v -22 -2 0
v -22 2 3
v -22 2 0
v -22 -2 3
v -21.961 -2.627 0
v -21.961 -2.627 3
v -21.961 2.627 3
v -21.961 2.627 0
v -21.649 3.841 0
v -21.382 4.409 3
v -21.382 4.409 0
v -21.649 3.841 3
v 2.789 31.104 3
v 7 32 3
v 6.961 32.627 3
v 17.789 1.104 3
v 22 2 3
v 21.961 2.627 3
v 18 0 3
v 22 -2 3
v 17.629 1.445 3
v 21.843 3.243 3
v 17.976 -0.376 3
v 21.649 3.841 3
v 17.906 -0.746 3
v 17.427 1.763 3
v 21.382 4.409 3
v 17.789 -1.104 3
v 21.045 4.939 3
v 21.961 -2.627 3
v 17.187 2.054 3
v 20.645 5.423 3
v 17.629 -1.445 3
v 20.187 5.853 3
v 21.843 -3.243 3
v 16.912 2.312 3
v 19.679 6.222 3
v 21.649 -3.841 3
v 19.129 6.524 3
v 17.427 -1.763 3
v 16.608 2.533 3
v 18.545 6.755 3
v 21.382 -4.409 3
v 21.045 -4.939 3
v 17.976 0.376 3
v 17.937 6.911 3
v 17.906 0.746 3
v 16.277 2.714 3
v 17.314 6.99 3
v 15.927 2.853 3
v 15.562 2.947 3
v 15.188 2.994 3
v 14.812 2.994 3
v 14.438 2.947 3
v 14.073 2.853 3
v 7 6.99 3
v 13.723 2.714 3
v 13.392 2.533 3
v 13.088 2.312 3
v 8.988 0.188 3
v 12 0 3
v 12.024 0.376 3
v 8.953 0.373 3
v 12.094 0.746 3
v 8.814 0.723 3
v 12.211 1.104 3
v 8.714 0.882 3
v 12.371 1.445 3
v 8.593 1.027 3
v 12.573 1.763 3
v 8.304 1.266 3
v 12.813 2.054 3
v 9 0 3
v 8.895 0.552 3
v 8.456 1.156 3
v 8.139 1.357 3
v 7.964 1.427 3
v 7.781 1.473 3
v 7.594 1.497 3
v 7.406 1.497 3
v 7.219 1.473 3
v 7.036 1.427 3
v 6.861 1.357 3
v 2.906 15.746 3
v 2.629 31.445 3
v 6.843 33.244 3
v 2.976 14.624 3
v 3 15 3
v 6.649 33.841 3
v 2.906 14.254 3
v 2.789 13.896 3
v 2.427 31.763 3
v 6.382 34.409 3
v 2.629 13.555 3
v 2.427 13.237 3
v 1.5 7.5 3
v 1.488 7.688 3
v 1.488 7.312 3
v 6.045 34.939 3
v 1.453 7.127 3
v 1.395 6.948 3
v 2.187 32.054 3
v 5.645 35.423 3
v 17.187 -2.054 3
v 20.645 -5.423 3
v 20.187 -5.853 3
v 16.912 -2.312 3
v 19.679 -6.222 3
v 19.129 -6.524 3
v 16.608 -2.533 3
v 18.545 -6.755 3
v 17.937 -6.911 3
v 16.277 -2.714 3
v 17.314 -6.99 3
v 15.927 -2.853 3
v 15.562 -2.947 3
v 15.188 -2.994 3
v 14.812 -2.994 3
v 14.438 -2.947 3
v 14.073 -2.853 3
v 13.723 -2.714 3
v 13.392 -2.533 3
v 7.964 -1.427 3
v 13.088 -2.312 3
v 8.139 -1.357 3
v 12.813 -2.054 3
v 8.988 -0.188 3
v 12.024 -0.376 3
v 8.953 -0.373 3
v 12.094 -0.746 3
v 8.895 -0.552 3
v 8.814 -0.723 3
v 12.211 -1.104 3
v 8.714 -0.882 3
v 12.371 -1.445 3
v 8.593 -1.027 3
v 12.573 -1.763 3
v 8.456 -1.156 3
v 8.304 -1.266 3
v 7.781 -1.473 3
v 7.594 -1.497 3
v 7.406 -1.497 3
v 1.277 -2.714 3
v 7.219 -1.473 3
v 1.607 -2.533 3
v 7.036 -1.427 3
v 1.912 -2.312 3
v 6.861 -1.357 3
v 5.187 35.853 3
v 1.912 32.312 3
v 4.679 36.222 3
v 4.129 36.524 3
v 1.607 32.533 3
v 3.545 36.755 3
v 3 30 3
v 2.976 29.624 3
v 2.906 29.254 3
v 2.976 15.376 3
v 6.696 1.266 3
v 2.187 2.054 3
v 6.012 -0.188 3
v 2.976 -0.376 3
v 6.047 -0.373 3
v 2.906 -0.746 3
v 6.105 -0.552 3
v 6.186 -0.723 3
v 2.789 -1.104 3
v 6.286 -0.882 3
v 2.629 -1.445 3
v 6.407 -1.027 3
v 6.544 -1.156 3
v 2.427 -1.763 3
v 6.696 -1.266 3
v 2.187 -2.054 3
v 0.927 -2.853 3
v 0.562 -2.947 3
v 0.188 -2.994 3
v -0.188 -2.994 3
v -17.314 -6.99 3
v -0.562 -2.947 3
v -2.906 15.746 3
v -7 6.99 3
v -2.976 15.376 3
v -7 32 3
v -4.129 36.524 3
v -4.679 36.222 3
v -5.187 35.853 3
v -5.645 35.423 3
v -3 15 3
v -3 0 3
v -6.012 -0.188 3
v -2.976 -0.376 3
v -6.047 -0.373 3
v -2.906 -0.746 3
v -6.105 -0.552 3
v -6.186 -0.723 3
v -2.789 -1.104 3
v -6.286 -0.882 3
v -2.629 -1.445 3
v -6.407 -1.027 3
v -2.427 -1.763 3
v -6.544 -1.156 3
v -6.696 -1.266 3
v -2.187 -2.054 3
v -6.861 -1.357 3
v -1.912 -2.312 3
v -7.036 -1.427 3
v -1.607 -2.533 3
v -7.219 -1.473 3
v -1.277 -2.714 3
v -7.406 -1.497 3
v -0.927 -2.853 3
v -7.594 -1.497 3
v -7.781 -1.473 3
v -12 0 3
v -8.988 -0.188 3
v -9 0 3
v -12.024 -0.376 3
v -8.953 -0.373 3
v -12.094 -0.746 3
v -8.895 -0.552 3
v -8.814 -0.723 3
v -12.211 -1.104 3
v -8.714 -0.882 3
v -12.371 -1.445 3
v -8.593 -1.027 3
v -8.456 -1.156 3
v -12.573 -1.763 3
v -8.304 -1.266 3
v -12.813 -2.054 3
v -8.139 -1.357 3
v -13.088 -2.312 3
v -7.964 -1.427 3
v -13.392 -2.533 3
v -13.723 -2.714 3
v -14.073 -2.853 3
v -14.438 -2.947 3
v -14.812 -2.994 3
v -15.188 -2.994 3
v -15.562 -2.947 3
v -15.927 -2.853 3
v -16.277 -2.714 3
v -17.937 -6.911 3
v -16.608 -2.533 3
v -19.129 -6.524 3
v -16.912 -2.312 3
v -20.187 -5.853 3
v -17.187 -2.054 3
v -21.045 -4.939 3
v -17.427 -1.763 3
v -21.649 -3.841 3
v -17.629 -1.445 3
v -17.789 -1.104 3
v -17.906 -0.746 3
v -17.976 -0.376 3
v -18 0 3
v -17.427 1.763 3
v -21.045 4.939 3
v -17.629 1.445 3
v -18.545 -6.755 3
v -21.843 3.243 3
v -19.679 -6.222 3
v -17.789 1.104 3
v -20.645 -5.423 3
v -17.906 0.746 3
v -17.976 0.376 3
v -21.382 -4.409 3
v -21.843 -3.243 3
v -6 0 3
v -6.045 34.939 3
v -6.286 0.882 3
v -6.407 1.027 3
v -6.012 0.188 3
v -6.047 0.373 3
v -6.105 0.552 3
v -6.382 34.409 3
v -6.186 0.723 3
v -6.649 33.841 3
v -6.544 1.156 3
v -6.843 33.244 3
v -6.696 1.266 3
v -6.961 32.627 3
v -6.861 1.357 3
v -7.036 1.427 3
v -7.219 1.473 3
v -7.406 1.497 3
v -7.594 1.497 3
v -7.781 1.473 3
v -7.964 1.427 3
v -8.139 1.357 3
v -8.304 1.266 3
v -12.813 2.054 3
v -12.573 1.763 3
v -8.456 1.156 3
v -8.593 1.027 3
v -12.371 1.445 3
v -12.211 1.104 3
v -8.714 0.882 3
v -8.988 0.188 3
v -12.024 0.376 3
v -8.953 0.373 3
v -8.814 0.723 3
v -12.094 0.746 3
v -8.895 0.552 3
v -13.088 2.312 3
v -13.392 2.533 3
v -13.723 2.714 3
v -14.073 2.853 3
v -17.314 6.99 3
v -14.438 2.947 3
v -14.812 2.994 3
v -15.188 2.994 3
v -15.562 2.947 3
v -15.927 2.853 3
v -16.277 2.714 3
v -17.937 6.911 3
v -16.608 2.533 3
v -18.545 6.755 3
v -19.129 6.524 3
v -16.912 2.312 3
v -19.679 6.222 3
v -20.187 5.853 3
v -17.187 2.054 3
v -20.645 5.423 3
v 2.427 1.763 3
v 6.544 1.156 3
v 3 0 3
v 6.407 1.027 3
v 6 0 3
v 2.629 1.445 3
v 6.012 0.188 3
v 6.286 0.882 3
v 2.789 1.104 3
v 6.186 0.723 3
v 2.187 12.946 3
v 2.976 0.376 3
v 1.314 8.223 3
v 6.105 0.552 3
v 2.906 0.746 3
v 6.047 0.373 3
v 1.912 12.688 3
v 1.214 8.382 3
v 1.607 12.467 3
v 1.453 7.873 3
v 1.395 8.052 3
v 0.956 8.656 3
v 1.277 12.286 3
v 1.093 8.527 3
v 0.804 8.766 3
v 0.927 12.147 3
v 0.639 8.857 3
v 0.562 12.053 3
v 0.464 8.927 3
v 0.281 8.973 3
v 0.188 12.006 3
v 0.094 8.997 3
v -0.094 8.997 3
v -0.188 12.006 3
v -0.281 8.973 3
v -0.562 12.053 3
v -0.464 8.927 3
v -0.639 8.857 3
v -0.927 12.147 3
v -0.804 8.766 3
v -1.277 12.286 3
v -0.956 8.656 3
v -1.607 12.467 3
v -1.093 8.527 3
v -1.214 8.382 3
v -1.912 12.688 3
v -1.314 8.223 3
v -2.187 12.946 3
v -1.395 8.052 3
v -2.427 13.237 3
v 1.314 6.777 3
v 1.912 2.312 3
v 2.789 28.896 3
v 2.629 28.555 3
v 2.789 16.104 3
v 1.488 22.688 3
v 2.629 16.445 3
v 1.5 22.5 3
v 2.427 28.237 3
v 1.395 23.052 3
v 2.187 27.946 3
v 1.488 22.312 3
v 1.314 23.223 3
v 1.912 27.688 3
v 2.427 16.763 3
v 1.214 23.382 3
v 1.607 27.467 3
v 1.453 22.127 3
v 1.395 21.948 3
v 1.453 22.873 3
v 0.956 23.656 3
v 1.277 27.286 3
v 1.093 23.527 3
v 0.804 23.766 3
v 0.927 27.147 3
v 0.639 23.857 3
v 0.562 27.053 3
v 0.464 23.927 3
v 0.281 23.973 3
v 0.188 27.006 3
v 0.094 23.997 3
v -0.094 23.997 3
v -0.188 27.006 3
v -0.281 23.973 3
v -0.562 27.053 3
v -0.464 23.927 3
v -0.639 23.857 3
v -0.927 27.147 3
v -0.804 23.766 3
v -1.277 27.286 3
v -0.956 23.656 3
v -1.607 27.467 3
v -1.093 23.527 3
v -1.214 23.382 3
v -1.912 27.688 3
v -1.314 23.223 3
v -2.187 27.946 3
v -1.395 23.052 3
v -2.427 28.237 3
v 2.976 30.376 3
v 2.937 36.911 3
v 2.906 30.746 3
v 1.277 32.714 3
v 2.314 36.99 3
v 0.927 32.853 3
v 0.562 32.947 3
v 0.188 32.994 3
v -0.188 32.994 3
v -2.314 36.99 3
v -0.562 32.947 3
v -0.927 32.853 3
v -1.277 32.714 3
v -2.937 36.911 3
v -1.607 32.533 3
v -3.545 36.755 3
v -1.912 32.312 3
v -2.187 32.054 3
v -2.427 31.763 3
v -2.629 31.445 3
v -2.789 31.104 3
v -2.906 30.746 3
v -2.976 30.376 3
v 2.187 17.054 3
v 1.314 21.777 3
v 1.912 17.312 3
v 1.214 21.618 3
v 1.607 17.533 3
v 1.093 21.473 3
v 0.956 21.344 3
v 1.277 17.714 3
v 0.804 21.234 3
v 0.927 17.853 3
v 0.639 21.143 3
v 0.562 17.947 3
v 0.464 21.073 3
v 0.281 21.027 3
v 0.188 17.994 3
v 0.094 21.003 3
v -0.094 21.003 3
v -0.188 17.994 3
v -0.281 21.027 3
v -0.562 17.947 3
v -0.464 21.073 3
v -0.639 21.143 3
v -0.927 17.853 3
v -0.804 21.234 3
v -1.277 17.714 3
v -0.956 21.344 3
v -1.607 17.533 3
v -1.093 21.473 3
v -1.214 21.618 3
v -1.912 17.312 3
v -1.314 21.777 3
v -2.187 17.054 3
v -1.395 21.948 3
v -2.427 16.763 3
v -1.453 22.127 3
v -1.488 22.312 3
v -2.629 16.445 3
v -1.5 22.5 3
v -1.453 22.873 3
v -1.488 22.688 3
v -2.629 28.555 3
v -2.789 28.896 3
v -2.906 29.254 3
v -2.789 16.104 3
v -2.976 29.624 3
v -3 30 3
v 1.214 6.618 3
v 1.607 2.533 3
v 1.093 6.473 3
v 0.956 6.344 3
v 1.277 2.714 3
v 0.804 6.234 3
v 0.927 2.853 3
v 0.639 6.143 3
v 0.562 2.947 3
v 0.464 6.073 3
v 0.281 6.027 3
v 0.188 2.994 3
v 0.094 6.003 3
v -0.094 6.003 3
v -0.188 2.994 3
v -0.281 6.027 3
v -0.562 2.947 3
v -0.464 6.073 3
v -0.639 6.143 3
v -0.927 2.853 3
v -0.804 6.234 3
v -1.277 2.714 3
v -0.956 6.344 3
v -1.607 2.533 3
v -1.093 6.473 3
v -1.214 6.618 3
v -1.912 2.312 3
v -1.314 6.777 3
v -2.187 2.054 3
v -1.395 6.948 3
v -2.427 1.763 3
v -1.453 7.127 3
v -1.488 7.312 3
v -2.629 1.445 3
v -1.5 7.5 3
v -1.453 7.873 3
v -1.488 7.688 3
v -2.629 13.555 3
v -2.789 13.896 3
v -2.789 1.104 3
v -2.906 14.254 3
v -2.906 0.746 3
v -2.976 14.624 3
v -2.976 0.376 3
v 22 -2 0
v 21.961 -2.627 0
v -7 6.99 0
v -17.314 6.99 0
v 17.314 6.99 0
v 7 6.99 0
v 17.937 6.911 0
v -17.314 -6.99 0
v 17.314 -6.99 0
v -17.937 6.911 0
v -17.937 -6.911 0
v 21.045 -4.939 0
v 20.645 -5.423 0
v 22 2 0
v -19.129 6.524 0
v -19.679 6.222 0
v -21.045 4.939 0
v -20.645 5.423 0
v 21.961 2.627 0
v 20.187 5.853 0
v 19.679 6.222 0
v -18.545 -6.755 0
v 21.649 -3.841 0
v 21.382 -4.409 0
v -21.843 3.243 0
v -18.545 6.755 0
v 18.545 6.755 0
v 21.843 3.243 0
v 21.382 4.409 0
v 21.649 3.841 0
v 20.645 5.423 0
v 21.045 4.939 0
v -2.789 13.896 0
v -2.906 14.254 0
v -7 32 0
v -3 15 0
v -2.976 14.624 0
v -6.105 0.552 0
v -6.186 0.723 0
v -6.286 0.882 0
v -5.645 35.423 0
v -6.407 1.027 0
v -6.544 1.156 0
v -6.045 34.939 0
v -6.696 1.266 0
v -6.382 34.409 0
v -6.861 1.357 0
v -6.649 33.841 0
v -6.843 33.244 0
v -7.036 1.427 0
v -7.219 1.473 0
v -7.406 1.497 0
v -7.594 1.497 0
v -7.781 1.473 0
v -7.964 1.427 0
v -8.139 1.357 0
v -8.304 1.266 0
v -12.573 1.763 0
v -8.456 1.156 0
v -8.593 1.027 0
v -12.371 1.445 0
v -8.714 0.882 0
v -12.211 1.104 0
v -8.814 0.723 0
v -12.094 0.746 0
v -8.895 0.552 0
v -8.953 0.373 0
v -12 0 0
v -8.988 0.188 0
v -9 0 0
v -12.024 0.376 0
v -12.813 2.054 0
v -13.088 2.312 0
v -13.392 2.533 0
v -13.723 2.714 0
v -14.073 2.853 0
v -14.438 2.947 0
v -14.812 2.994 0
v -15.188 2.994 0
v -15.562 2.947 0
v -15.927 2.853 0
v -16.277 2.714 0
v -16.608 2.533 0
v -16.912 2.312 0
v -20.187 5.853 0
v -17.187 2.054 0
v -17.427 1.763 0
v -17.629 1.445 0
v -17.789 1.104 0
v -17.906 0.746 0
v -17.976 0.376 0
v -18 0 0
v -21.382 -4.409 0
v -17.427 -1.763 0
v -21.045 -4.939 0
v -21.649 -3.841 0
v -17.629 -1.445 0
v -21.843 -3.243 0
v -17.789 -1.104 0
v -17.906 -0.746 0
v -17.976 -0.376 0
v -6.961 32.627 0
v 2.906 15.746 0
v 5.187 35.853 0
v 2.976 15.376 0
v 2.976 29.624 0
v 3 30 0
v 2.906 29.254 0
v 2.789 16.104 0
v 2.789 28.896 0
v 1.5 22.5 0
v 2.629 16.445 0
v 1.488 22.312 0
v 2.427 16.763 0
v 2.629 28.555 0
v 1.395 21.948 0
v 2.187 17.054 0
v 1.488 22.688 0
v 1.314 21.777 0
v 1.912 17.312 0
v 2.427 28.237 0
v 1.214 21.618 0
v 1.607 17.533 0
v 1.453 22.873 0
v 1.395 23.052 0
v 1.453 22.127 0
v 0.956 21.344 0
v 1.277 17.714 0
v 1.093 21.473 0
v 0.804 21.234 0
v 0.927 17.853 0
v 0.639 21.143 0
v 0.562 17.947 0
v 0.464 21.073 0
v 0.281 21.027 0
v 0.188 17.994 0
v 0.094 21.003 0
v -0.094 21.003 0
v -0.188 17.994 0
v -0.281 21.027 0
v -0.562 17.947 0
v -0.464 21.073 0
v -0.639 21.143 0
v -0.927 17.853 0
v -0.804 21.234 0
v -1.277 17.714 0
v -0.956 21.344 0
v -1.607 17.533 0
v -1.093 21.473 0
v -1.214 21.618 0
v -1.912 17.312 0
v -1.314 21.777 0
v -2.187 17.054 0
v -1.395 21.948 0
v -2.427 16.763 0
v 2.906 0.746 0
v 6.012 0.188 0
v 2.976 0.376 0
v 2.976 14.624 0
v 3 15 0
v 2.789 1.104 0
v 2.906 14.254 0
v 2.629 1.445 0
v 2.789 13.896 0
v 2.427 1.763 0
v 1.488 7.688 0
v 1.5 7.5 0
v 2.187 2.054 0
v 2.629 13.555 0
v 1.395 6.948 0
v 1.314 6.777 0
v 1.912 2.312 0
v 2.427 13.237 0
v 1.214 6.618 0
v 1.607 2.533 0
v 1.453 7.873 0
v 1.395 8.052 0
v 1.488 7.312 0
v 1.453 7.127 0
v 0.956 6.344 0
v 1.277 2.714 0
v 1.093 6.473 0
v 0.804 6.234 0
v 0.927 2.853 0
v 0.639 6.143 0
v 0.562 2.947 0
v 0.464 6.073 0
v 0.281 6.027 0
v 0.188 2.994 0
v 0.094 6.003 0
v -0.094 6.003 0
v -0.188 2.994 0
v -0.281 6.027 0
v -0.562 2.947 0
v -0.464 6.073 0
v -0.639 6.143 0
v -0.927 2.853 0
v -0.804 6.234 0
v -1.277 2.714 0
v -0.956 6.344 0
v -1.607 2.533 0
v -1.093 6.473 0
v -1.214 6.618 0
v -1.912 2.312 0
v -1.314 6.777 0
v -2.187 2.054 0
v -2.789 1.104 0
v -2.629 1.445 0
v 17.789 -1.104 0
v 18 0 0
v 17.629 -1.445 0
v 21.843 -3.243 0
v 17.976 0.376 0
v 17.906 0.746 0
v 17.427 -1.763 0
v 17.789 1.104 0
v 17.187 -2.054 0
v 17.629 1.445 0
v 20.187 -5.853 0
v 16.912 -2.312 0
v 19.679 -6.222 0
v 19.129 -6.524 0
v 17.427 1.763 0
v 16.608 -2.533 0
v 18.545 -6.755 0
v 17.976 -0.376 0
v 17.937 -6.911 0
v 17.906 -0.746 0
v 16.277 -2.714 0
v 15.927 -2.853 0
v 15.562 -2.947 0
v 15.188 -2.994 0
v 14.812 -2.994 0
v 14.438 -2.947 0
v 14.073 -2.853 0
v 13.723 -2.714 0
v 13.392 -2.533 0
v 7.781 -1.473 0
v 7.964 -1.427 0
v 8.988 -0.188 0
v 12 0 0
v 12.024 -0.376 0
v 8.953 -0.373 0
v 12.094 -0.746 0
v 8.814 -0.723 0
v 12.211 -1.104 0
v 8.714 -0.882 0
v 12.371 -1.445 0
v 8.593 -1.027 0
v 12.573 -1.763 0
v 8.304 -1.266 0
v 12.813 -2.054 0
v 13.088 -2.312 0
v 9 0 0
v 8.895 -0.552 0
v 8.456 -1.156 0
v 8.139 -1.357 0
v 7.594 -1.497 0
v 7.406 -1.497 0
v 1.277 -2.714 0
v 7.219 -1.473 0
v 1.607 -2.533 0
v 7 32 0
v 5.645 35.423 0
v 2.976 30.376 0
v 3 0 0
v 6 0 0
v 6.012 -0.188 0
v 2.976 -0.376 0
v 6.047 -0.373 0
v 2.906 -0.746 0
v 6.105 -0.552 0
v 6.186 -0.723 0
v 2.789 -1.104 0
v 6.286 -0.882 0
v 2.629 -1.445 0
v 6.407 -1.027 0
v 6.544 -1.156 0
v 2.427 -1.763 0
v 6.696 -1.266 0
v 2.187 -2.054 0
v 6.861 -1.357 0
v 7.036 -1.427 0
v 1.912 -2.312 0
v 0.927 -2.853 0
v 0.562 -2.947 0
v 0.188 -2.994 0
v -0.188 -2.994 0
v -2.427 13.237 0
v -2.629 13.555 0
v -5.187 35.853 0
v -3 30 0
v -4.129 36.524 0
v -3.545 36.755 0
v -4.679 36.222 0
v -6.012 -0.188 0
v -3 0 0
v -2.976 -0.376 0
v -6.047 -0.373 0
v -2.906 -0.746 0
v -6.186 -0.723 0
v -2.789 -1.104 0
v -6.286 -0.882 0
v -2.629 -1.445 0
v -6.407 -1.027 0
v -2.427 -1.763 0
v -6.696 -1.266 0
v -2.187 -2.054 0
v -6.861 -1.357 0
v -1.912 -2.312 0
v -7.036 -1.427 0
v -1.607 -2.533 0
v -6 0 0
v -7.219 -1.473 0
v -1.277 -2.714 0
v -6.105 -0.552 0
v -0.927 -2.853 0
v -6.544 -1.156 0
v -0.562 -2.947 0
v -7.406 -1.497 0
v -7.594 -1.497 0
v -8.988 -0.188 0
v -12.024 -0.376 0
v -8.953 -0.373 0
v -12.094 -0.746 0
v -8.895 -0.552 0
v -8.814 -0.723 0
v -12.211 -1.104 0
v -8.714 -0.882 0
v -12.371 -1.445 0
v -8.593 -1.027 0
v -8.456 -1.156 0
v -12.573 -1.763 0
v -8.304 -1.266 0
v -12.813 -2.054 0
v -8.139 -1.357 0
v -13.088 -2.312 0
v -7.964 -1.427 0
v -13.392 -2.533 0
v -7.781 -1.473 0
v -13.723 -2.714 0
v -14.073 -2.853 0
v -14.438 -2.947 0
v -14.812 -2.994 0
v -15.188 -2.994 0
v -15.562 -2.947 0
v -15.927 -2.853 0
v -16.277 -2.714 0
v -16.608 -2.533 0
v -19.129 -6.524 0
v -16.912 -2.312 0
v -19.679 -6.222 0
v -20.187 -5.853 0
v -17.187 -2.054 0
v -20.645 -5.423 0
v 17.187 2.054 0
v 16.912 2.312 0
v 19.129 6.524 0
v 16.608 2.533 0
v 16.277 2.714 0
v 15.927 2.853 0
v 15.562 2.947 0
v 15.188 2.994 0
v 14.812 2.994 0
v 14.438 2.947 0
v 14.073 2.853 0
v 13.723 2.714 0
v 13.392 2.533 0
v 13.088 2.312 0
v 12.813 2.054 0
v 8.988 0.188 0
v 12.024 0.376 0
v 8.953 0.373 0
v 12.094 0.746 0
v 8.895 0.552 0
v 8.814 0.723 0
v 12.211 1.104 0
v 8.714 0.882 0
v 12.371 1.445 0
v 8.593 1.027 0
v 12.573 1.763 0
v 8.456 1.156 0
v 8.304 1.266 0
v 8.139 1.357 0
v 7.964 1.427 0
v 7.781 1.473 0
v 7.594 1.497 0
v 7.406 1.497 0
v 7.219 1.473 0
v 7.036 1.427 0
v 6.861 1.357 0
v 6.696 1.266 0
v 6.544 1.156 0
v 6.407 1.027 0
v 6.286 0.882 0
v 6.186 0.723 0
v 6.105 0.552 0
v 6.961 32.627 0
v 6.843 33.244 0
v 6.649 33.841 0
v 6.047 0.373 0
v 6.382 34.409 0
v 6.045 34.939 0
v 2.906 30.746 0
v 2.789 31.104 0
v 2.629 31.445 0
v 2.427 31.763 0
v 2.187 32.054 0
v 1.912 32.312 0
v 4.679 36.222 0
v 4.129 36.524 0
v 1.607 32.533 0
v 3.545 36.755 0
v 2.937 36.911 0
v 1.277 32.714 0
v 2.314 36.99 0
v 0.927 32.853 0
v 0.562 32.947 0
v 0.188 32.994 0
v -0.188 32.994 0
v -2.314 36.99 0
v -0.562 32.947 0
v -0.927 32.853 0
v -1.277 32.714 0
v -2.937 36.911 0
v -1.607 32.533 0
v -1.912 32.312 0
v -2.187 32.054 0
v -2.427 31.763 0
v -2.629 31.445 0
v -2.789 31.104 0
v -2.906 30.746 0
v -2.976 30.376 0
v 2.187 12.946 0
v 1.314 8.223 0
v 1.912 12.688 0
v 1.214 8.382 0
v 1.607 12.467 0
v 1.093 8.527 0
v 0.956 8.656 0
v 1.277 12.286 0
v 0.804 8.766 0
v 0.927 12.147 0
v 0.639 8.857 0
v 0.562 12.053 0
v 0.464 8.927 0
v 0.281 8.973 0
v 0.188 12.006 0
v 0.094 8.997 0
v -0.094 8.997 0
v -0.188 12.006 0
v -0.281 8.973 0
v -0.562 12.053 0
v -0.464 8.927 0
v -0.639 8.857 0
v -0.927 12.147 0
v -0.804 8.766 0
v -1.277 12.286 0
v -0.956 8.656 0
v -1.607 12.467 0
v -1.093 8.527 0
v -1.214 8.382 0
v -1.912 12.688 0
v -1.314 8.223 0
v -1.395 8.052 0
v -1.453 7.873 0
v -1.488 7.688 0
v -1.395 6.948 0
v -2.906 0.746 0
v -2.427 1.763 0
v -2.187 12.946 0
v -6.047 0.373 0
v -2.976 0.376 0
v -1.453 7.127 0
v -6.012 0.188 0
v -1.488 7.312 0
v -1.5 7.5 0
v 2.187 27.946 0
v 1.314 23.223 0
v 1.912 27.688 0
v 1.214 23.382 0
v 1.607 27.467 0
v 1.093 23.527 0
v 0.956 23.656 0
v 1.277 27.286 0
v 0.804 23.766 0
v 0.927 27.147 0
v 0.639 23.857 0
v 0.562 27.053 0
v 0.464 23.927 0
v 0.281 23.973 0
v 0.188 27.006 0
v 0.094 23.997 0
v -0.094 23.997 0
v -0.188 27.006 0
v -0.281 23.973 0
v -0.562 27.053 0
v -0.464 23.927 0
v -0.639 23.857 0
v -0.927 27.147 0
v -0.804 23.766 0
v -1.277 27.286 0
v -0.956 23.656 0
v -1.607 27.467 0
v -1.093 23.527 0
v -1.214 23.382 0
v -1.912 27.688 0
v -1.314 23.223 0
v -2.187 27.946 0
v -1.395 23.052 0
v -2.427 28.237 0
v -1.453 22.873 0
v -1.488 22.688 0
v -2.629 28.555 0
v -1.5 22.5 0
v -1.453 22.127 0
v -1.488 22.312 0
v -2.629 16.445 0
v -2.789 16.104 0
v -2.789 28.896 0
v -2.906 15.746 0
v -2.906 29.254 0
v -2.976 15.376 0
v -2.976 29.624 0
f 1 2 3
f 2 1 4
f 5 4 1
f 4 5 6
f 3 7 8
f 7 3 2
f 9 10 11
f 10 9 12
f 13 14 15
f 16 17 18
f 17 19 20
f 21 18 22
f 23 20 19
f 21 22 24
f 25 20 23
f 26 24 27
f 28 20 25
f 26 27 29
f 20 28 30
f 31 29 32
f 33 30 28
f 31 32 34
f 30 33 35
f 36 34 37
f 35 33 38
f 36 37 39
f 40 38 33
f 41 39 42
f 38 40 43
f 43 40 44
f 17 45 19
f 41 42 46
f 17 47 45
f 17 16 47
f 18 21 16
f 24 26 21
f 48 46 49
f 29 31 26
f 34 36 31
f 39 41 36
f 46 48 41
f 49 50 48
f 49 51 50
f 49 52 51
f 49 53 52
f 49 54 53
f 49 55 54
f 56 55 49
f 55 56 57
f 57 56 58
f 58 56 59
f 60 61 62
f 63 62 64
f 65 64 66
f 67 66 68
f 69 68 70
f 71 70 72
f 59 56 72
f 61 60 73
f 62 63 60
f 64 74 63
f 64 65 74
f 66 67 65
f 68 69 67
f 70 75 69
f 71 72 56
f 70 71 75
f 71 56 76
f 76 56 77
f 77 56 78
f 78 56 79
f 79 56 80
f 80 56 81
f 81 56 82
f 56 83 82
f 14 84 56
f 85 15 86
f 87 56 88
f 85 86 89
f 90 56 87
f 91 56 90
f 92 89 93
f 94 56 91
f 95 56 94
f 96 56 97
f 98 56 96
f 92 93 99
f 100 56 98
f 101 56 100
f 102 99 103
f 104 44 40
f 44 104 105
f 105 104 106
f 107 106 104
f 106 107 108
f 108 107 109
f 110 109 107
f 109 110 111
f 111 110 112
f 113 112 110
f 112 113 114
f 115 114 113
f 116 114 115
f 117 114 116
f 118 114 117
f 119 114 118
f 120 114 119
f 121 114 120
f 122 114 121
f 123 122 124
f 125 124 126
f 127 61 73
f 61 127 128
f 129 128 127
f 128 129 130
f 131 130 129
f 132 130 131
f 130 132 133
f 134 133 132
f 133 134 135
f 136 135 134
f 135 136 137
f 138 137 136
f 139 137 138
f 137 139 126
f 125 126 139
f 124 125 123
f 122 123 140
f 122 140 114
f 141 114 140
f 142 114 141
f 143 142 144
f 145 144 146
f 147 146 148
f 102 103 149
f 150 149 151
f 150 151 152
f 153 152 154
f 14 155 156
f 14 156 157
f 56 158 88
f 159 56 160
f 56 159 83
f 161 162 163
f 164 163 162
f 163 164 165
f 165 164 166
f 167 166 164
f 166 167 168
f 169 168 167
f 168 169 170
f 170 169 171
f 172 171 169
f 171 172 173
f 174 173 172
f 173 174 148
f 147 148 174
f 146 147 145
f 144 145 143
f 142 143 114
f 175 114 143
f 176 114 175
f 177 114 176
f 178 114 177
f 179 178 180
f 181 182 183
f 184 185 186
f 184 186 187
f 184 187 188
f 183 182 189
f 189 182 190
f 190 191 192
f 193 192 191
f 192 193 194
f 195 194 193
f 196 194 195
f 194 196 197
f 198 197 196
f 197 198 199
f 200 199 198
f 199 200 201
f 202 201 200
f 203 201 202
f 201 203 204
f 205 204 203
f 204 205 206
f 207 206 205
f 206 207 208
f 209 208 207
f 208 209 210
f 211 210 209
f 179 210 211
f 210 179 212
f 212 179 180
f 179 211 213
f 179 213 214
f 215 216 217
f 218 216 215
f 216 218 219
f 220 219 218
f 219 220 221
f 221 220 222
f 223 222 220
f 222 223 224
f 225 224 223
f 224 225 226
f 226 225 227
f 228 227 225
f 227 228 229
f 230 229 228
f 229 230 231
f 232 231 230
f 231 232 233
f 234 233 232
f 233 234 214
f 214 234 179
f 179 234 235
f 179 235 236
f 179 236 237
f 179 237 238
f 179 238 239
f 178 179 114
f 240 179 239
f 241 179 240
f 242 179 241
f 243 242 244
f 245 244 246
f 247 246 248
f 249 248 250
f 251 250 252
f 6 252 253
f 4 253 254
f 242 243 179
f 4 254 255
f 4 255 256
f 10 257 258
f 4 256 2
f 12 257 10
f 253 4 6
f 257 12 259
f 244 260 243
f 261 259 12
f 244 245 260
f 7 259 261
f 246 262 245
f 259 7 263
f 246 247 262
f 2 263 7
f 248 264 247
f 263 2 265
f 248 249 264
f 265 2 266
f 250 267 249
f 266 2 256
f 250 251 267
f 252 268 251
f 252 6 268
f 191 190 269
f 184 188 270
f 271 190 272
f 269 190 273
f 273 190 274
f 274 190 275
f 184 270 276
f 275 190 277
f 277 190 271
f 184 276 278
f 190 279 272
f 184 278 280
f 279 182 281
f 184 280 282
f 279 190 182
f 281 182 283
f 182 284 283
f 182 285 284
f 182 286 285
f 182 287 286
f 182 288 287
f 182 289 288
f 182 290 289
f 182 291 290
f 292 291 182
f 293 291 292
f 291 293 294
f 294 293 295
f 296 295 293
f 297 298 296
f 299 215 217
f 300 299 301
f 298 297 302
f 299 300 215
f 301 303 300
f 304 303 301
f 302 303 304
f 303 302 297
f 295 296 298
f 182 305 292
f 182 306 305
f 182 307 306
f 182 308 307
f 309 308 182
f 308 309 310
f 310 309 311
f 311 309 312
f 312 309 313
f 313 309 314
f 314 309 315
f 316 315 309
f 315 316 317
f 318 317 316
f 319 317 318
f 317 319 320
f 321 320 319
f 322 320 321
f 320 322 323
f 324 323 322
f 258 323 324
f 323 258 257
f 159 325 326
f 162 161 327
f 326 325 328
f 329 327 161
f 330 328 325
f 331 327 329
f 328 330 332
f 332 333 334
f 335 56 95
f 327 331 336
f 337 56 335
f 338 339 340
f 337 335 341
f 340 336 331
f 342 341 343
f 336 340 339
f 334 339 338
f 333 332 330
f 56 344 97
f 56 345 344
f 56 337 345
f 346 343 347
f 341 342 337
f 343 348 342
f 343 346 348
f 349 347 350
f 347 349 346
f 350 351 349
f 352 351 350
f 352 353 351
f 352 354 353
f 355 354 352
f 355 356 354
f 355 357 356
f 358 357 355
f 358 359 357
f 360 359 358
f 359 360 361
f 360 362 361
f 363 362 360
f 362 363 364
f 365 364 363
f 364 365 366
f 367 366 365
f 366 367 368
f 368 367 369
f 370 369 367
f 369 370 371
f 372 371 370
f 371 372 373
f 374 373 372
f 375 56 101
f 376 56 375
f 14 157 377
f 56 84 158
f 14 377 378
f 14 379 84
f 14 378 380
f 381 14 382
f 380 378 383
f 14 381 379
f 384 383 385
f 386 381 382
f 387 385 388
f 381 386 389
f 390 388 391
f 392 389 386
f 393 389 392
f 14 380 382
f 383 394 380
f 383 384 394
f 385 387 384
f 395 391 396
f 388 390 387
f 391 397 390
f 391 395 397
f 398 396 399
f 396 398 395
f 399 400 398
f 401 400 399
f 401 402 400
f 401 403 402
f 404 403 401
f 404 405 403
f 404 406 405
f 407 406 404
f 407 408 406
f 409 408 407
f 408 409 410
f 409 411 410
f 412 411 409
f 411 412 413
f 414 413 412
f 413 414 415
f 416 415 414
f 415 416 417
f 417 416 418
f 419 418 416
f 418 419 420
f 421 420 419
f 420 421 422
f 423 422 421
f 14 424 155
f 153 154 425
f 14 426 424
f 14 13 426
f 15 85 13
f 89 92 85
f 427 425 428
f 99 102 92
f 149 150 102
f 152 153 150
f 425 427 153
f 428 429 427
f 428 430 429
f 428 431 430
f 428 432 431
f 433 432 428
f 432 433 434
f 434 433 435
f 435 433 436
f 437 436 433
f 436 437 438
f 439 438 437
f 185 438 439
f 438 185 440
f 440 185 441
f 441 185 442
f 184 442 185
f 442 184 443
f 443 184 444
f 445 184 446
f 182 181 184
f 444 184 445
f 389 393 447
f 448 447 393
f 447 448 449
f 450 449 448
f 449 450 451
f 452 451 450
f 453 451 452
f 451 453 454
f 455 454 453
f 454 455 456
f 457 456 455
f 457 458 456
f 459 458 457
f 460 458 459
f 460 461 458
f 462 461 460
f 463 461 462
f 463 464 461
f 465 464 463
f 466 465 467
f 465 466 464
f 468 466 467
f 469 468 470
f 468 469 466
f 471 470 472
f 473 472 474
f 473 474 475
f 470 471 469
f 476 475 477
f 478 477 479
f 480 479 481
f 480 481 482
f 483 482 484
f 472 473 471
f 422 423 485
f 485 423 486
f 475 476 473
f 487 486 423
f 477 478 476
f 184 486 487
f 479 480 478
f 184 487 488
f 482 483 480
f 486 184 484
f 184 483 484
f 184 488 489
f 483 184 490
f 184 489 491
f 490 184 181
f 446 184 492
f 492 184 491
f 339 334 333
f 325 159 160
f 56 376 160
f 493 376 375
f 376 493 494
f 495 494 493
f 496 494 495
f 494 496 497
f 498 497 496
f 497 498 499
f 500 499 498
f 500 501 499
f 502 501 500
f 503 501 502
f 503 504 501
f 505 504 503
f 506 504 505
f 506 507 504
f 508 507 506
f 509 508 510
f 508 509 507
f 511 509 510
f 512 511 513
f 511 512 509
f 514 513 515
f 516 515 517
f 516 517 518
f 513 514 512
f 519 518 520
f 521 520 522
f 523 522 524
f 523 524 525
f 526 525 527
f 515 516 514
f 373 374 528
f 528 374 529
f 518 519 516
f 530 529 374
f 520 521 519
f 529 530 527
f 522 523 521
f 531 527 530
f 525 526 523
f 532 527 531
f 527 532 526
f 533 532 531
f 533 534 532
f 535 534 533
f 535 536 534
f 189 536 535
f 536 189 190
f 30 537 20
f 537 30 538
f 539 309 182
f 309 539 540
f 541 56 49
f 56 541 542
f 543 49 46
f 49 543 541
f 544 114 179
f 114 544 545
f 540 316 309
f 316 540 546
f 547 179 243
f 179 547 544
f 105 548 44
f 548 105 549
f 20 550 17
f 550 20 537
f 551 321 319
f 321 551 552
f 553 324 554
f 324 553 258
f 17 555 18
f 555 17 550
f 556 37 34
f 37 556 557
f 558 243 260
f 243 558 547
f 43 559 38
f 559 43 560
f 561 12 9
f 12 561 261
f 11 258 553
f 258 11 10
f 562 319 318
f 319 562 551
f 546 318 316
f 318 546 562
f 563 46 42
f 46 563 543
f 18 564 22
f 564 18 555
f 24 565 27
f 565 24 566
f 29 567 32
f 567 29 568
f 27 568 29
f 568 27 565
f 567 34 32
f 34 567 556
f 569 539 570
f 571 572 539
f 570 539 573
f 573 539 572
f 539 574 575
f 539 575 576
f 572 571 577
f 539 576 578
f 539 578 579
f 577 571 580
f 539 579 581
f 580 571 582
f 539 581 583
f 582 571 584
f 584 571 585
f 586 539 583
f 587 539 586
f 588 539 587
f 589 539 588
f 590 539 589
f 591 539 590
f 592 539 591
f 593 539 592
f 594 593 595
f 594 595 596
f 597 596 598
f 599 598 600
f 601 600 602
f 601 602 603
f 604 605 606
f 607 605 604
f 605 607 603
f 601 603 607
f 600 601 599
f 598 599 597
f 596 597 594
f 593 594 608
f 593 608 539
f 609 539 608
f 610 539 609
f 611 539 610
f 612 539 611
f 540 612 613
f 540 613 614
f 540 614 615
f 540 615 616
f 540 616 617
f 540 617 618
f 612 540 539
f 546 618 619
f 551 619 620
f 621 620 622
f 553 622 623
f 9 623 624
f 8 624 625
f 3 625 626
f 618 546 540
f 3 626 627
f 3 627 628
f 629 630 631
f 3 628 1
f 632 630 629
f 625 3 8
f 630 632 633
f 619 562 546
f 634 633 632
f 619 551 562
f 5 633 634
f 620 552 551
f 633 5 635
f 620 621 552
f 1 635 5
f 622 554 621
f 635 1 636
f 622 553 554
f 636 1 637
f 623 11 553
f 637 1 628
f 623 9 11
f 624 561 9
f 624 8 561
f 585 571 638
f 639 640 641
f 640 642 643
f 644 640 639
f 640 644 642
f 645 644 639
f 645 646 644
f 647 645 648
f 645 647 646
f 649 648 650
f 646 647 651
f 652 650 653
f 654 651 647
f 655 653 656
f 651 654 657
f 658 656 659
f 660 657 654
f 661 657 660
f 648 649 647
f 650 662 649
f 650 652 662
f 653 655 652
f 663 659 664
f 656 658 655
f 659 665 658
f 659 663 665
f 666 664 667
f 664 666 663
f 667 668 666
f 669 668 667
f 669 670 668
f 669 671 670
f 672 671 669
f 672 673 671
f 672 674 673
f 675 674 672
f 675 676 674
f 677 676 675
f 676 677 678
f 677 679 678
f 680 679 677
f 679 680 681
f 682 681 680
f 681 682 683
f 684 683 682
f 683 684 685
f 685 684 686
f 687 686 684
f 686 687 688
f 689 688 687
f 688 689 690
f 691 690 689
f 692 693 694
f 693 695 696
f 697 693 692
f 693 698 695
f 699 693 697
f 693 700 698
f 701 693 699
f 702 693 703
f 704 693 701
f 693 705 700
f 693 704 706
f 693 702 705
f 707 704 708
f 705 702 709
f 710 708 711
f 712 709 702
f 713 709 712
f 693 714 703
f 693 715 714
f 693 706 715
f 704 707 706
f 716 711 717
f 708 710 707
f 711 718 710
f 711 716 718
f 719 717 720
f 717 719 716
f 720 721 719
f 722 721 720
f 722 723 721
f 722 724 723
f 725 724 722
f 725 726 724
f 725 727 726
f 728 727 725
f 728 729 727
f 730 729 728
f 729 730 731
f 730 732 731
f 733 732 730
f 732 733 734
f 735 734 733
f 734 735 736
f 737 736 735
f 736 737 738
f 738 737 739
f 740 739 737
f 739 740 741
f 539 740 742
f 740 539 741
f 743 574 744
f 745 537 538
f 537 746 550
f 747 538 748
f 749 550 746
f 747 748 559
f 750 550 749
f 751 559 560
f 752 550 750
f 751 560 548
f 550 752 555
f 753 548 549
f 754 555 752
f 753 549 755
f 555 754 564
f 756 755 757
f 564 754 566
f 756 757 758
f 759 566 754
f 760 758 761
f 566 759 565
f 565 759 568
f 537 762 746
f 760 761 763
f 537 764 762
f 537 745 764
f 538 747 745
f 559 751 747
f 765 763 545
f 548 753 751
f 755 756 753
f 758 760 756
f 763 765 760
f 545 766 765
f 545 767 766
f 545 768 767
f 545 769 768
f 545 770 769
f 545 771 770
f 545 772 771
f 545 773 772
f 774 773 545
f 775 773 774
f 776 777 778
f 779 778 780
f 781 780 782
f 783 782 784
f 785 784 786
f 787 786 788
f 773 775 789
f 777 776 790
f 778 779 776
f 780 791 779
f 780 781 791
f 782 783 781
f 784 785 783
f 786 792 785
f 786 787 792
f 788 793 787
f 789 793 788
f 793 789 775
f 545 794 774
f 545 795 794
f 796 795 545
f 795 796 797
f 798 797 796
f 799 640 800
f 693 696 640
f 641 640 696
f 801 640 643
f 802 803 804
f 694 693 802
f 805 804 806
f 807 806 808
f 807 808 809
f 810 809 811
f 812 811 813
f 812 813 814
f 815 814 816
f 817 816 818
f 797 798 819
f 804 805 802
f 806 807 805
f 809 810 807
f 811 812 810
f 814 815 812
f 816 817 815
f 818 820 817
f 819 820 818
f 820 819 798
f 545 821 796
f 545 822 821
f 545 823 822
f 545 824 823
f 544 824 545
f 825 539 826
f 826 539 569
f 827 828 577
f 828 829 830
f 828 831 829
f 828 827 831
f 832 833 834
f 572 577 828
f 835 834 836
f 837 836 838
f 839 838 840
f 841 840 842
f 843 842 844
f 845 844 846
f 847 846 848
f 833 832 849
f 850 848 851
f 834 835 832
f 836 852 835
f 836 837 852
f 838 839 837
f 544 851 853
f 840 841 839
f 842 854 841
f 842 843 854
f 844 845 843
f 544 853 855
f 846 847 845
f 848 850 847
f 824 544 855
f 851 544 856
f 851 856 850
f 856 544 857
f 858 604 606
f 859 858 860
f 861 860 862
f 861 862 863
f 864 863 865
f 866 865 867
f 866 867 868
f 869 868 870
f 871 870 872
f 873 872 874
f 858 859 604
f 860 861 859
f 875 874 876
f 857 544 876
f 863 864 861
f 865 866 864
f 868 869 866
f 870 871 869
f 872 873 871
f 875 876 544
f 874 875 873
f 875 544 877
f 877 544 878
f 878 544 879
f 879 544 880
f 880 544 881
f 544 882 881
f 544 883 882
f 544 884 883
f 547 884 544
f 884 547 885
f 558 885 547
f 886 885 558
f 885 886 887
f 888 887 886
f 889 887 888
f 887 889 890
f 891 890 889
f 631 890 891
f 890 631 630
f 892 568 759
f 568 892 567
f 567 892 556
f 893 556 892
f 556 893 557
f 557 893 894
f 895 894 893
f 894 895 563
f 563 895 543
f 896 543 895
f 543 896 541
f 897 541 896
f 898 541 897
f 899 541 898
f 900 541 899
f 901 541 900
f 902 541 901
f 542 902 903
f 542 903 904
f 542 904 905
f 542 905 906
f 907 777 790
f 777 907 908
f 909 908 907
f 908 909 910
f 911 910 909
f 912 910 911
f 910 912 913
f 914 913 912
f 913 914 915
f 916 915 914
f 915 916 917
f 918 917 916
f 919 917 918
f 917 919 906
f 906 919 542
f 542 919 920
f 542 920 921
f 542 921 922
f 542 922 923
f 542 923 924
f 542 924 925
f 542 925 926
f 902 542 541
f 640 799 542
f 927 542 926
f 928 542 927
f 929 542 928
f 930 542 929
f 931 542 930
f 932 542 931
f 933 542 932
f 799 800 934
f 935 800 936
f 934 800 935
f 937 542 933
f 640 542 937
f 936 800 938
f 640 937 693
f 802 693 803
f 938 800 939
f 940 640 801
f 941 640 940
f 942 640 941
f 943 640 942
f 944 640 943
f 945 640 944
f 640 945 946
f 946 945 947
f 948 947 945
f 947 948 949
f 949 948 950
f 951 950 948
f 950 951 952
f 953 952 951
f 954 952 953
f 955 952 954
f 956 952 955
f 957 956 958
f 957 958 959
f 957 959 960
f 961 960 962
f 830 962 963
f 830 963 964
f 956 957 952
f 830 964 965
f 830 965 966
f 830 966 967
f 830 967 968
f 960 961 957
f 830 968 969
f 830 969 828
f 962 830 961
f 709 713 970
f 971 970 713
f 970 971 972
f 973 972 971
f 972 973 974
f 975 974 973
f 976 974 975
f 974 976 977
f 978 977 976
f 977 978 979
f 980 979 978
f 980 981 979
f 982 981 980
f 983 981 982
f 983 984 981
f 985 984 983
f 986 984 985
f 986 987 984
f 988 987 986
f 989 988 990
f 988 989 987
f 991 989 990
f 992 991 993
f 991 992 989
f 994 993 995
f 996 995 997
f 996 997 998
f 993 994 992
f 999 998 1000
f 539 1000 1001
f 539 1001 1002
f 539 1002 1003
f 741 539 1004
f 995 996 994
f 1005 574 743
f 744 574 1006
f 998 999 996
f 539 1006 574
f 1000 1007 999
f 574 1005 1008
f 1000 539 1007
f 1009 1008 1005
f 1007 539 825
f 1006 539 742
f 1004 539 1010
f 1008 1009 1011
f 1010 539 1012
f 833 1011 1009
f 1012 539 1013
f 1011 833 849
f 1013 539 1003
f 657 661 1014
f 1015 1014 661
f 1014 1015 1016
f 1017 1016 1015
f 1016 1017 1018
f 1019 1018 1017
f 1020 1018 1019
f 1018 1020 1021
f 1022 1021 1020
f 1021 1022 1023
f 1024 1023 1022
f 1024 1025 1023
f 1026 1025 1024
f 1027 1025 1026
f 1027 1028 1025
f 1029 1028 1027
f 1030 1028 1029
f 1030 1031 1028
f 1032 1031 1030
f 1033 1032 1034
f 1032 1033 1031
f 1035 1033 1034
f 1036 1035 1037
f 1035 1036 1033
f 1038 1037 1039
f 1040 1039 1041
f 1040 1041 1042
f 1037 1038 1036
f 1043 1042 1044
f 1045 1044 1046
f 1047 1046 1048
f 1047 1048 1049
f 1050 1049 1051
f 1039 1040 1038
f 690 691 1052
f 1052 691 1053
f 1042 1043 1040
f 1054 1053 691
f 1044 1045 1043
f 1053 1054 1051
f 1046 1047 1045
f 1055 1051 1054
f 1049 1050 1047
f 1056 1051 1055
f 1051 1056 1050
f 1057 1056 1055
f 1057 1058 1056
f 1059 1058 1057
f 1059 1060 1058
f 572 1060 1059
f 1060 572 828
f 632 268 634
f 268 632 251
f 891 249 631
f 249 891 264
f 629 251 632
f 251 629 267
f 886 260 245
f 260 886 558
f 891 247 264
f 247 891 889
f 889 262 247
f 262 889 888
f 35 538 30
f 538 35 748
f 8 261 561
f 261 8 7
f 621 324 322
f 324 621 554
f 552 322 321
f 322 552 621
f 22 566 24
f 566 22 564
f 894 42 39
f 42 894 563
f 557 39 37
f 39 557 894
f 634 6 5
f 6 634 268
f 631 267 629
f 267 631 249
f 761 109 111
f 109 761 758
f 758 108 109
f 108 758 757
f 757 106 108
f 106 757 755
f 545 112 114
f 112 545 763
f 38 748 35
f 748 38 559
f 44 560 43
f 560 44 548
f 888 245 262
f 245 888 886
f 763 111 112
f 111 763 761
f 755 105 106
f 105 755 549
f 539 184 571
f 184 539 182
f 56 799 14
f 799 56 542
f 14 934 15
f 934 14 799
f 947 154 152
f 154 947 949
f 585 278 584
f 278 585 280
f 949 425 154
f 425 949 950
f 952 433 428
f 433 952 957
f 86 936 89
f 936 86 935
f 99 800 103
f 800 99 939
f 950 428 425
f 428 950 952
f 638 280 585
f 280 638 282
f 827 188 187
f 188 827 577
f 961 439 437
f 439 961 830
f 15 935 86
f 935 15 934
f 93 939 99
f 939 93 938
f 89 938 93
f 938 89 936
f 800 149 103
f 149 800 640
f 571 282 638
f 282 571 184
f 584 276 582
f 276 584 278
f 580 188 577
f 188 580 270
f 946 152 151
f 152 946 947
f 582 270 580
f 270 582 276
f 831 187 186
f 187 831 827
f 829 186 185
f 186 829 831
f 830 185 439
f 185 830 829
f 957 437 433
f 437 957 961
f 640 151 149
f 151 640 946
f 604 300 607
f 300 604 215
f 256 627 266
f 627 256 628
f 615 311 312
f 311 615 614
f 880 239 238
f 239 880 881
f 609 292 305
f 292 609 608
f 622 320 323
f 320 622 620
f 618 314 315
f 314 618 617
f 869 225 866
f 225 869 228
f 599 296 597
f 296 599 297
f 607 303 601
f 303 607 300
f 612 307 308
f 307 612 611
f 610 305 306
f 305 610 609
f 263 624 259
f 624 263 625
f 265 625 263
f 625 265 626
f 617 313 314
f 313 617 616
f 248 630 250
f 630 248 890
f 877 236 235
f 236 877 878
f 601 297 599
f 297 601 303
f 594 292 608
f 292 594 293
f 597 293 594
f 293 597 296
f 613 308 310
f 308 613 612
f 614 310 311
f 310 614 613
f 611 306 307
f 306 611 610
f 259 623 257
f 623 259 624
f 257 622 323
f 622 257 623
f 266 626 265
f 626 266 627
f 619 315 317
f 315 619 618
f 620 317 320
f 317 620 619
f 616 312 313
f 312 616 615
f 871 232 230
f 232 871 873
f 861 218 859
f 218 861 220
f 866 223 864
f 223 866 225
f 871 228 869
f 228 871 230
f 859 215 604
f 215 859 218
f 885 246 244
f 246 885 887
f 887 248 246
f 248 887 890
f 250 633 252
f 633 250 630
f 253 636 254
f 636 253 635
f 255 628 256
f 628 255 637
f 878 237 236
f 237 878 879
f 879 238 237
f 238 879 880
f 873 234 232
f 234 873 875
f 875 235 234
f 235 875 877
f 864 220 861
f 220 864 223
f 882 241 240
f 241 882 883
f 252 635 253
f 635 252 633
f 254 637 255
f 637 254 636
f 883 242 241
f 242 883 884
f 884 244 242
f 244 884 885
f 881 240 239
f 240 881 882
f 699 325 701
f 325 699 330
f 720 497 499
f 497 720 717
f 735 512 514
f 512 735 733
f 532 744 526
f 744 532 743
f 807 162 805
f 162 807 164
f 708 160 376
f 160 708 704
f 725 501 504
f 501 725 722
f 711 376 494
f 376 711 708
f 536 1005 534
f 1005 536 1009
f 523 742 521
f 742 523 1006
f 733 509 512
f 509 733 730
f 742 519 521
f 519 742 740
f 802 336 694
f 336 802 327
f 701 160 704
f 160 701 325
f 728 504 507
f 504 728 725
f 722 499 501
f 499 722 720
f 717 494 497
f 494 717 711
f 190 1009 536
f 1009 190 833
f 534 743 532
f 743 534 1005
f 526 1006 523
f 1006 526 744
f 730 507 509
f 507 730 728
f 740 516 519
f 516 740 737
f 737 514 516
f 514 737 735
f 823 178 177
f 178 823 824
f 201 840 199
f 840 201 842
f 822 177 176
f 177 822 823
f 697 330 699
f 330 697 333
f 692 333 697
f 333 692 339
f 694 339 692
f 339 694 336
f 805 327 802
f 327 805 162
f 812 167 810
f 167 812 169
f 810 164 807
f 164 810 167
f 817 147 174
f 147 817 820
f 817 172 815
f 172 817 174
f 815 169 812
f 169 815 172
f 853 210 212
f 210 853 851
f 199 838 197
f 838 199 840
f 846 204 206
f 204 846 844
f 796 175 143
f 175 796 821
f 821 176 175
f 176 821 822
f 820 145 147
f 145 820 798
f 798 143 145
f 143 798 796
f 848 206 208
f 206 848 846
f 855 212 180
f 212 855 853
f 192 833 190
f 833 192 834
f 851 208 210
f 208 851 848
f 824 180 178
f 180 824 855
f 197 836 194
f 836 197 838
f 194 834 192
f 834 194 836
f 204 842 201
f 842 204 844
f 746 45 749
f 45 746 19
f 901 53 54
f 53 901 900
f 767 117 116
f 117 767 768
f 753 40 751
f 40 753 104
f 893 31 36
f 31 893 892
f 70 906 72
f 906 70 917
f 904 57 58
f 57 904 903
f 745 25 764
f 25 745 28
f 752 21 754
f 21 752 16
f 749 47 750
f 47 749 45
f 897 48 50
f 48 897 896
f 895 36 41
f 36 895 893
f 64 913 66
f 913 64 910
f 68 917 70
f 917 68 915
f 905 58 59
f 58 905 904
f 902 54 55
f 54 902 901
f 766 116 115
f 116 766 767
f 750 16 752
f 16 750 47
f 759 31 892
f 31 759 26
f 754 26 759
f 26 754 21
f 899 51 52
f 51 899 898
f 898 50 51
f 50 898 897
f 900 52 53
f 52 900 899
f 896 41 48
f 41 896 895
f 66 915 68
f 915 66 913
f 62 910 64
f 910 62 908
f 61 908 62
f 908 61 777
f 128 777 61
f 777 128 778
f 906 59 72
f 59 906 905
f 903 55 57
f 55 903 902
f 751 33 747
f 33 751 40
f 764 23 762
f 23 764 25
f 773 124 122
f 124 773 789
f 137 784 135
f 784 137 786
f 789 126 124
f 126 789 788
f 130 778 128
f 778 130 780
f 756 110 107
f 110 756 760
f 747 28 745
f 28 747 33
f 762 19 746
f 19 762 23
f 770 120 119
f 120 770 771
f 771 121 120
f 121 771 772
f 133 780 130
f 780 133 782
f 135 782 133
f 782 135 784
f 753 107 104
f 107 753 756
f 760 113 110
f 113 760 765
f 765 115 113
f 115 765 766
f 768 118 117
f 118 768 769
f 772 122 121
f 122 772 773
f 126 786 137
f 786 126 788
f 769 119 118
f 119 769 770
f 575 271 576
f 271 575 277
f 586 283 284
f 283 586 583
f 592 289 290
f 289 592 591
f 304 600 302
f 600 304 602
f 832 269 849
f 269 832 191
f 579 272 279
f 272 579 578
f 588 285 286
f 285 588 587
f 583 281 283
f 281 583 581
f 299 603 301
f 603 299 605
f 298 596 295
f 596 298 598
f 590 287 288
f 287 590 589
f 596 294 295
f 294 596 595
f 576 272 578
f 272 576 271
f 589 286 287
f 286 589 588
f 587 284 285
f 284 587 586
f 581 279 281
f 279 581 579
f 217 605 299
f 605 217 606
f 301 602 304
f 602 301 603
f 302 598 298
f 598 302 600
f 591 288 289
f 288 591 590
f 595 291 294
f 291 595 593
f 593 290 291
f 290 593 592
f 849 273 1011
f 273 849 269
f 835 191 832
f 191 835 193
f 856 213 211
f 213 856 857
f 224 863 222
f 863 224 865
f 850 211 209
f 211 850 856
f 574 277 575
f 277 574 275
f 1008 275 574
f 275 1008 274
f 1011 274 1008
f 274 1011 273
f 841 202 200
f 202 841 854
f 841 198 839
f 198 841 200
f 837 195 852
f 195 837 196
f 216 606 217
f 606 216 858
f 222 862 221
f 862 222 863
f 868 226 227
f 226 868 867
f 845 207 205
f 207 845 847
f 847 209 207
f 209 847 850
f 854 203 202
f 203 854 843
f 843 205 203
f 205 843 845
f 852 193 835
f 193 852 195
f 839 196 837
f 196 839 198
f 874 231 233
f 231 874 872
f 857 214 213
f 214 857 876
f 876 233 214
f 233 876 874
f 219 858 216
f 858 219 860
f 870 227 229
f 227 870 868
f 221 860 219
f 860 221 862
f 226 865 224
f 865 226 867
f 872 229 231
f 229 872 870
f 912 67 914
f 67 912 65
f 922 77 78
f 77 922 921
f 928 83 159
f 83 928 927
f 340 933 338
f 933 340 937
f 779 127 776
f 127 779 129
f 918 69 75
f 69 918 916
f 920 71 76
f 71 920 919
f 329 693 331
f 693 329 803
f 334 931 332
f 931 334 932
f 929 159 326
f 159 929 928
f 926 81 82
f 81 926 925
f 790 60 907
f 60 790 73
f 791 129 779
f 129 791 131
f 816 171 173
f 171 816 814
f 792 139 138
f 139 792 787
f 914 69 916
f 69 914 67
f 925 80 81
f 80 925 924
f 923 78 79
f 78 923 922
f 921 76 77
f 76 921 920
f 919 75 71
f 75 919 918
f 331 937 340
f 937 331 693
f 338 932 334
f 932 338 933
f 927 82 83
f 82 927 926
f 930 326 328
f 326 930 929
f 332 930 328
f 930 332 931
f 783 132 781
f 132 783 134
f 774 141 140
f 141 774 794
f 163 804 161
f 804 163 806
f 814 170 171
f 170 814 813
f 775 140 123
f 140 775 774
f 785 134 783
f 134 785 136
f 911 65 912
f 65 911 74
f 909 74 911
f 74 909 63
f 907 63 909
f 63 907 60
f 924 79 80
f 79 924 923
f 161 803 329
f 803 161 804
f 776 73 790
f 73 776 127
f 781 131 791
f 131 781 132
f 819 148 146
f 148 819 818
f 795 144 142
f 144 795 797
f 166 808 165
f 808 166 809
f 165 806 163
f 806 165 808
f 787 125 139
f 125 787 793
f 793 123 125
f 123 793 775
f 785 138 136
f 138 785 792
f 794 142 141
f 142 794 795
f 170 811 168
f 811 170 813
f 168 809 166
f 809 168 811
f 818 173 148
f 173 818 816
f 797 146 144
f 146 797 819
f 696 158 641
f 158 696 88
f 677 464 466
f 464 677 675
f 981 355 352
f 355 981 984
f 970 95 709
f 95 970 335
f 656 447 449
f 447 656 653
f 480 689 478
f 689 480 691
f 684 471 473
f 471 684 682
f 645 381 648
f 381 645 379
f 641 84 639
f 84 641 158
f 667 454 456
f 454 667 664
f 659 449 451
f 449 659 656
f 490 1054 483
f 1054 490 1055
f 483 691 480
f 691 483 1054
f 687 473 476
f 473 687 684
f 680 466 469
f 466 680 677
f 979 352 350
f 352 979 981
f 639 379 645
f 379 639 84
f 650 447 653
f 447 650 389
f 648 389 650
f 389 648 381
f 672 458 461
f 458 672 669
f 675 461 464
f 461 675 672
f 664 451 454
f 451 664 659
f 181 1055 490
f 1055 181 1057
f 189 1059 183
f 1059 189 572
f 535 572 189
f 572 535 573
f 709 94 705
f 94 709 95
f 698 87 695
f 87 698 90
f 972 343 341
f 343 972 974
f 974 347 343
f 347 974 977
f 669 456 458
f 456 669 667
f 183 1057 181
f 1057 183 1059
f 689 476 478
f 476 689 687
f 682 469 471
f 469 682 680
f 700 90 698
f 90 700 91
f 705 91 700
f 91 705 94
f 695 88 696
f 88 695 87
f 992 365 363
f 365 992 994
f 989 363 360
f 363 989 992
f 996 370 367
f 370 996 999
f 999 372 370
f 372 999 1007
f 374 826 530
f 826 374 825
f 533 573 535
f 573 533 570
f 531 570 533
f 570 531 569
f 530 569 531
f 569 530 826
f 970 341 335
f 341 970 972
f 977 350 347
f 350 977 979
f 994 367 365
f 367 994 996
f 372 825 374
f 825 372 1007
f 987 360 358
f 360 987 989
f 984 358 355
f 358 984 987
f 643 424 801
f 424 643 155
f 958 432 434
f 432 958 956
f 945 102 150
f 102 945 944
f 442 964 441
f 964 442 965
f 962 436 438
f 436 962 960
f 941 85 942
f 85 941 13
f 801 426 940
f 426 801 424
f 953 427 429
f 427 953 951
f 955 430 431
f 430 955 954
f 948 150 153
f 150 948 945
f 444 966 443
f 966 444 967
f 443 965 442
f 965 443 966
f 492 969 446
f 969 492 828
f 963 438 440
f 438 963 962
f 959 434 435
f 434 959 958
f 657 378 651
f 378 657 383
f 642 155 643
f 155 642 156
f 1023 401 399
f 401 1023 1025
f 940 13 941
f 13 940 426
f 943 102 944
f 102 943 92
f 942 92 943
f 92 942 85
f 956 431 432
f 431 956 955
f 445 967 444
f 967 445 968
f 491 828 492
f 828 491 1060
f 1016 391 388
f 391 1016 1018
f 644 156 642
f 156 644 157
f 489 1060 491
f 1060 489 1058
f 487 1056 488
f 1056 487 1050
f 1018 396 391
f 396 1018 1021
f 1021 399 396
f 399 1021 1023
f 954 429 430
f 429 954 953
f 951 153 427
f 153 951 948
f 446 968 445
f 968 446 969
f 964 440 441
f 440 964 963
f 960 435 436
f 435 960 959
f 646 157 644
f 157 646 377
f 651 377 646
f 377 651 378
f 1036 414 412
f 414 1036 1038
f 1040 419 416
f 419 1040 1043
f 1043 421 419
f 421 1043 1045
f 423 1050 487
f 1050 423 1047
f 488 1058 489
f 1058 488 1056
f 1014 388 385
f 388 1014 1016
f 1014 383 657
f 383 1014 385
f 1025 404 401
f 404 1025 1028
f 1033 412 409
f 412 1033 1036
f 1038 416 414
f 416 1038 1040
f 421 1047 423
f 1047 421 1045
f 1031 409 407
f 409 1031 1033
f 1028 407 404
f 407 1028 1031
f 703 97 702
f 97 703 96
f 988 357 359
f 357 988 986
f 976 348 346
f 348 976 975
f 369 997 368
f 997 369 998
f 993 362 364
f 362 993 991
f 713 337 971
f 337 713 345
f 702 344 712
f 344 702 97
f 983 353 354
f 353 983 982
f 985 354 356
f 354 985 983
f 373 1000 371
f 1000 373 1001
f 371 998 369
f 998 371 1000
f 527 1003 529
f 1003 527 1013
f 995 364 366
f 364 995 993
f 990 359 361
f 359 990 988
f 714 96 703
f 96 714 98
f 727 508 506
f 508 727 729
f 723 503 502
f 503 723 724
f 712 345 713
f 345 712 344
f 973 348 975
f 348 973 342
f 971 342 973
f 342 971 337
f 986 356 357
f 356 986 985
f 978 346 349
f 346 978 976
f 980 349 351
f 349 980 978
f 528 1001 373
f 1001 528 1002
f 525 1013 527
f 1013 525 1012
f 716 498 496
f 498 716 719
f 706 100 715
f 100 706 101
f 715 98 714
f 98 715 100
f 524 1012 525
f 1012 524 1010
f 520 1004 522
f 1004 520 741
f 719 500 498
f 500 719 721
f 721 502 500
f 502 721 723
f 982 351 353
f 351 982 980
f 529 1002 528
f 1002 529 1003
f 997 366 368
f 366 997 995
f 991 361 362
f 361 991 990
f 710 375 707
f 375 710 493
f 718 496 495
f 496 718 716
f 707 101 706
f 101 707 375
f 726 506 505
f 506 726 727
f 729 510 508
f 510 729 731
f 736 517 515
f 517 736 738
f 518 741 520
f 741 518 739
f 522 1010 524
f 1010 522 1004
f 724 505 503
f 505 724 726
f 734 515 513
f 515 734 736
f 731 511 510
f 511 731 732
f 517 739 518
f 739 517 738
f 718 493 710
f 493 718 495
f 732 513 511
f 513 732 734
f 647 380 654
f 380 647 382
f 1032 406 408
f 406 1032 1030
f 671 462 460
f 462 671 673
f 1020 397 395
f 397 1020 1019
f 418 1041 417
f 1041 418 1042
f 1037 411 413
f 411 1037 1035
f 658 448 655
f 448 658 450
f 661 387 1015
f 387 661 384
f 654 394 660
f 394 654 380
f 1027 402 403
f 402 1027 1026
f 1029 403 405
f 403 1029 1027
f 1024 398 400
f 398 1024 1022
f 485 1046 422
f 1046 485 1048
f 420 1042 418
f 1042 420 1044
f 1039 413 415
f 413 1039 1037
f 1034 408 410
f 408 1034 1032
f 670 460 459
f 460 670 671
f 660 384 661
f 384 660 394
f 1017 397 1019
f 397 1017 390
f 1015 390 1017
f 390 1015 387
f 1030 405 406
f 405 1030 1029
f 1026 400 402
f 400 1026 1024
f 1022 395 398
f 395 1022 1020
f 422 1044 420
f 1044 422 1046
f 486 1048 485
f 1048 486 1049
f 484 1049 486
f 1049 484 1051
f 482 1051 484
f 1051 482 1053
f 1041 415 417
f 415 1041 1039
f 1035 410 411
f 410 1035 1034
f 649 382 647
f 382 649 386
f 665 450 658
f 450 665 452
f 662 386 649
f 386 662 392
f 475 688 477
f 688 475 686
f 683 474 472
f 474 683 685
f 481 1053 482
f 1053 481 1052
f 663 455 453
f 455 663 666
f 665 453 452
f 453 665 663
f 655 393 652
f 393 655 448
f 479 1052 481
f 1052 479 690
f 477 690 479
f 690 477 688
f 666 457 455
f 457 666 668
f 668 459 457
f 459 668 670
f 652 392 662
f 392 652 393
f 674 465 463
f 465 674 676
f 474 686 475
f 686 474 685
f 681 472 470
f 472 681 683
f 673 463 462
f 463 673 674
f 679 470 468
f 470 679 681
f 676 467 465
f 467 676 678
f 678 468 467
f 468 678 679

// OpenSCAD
$fn = 50;


difference() {
	union() {
		*color(alpha = 1.0000000000, c = "gray") {
			translate(v = [0, 7, 0]) {
				linear_extrude(height = 1) {
					text(font = "Arial:style=Bold", halign = "center", size = 4.5000000000, text = "COMMENT plate main", valign = "center");
				}
			}
		}
		hull() {
			translate(v = [-17.0000000000, 2.0000000000, 0]) {
				cylinder(h = 3, r = 5);
			}
			translate(v = [17.0000000000, 2.0000000000, 0]) {
				cylinder(h = 3, r = 5);
			}
			translate(v = [-17.0000000000, -2.0000000000, 0]) {
				cylinder(h = 3, r = 5);
			}
			translate(v = [17.0000000000, -2.0000000000, 0]) {
				cylinder(h = 3, r = 5);
			}
		}
		*color(alpha = 1.0000000000, c = "gray") {
			translate(v = [0, 7, 0]) {
				linear_extrude(height = 1) {
					text(font = "Arial:style=Bold", halign = "center", size = 4.5000000000, text = "COMMENT plate main", valign = "center");
				}
			}
		}
		translate(v = [0, 15.0000000000, 0]) {
			hull() {
				translate(v = [-2.0000000000, 17.0000000000, 0]) {
					cylinder(h = 3, r = 5);
				}
				translate(v = [2.0000000000, 17.0000000000, 0]) {
					cylinder(h = 3, r = 5);
				}
				translate(v = [-2.0000000000, -17.0000000000, 0]) {
					cylinder(h = 3, r = 5);
				}
				translate(v = [2.0000000000, -17.0000000000, 0]) {
					cylinder(h = 3, r = 5);
				}
			}
		}
	}
	union() {
		*color(alpha = 1.0000000000, c = "gray") {
			translate(v = [0, 7, 0]) {
				linear_extrude(height = 1) {
					text(font = "Arial:style=Bold", halign = "center", size = 4.5000000000, text = "COMMENT holes main", valign = "center");
				}
			}
		}
		translate(v = [-15.0000000000, 0.0000000000, 0]) {
			translate(v = [0, 0, -100]) {
				cylinder(h = 200, r = 3.0000000000);
			}
		}
		translate(v = [0, 0, -100]) {
			cylinder(h = 200, r = 3.0000000000);
		}
		translate(v = [15.0000000000, 0.0000000000, 0]) {
			translate(v = [0, 0, -100]) {
				cylinder(h = 200, r = 3.0000000000);
			}
		}
		translate(v = [-15.0000000000, 0.0000000000, 0]) {
			translate(v = [0, 0, -100]) {
				cylinder(h = 200, r = 1.5000000000);
			}
		}
		translate(v = [-7.5000000000, 0.0000000000, 0]) {
			translate(v = [0, 0, -100]) {
				cylinder(h = 200, r = 1.5000000000);
			}
		}
		translate(v = [0, 0, -100]) {
			cylinder(h = 200, r = 1.5000000000);
		}
		translate(v = [7.5000000000, 0.0000000000, 0]) {
			translate(v = [0, 0, -100]) {
				cylinder(h = 200, r = 1.5000000000);
			}
		}
		translate(v = [15.0000000000, 0.0000000000, 0]) {
			translate(v = [0, 0, -100]) {
				cylinder(h = 200, r = 1.5000000000);
			}
		}
		*color(alpha = 1.0000000000, c = "gray") {
			translate(v = [0, 7, 0]) {
				linear_extrude(height = 1) {
					text(font = "Arial:style=Bold", halign = "center", size = 4.5000000000, text = "COMMENT holes main", valign = "center");
				}
			}
		}
		translate(v = [0, 0, -100]) {
			cylinder(h = 200, r = 3.0000000000);
		}
		translate(v = [0.0000000000, 15.0000000000, 0]) {
			translate(v = [0, 0, -100]) {
				cylinder(h = 200, r = 3.0000000000);
			}
		}
		translate(v = [0.0000000000, 30.0000000000, 0]) {
			translate(v = [0, 0, -100]) {
				cylinder(h = 200, r = 3.0000000000);
			}
		}
		translate(v = [0, 0, -100]) {
			cylinder(h = 200, r = 1.5000000000);
		}
		translate(v = [0.0000000000, 7.5000000000, 0]) {
			translate(v = [0, 0, -100]) {
				cylinder(h = 200, r = 1.5000000000);
			}
		}
		translate(v = [0.0000000000, 15.0000000000, 0]) {
			translate(v = [0, 0, -100]) {
				cylinder(h = 200, r = 1.5000000000);
			}
		}
		translate(v = [0.0000000000, 22.5000000000, 0]) {
			translate(v = [0, 0, -100]) {
				cylinder(h = 200, r = 1.5000000000);
			}
		}
		translate(v = [0.0000000000, 30.0000000000, 0]) {
			translate(v = [0, 0, -100]) {
				cylinder(h = 200, r = 1.5000000000);
			}
		}
	}
}
